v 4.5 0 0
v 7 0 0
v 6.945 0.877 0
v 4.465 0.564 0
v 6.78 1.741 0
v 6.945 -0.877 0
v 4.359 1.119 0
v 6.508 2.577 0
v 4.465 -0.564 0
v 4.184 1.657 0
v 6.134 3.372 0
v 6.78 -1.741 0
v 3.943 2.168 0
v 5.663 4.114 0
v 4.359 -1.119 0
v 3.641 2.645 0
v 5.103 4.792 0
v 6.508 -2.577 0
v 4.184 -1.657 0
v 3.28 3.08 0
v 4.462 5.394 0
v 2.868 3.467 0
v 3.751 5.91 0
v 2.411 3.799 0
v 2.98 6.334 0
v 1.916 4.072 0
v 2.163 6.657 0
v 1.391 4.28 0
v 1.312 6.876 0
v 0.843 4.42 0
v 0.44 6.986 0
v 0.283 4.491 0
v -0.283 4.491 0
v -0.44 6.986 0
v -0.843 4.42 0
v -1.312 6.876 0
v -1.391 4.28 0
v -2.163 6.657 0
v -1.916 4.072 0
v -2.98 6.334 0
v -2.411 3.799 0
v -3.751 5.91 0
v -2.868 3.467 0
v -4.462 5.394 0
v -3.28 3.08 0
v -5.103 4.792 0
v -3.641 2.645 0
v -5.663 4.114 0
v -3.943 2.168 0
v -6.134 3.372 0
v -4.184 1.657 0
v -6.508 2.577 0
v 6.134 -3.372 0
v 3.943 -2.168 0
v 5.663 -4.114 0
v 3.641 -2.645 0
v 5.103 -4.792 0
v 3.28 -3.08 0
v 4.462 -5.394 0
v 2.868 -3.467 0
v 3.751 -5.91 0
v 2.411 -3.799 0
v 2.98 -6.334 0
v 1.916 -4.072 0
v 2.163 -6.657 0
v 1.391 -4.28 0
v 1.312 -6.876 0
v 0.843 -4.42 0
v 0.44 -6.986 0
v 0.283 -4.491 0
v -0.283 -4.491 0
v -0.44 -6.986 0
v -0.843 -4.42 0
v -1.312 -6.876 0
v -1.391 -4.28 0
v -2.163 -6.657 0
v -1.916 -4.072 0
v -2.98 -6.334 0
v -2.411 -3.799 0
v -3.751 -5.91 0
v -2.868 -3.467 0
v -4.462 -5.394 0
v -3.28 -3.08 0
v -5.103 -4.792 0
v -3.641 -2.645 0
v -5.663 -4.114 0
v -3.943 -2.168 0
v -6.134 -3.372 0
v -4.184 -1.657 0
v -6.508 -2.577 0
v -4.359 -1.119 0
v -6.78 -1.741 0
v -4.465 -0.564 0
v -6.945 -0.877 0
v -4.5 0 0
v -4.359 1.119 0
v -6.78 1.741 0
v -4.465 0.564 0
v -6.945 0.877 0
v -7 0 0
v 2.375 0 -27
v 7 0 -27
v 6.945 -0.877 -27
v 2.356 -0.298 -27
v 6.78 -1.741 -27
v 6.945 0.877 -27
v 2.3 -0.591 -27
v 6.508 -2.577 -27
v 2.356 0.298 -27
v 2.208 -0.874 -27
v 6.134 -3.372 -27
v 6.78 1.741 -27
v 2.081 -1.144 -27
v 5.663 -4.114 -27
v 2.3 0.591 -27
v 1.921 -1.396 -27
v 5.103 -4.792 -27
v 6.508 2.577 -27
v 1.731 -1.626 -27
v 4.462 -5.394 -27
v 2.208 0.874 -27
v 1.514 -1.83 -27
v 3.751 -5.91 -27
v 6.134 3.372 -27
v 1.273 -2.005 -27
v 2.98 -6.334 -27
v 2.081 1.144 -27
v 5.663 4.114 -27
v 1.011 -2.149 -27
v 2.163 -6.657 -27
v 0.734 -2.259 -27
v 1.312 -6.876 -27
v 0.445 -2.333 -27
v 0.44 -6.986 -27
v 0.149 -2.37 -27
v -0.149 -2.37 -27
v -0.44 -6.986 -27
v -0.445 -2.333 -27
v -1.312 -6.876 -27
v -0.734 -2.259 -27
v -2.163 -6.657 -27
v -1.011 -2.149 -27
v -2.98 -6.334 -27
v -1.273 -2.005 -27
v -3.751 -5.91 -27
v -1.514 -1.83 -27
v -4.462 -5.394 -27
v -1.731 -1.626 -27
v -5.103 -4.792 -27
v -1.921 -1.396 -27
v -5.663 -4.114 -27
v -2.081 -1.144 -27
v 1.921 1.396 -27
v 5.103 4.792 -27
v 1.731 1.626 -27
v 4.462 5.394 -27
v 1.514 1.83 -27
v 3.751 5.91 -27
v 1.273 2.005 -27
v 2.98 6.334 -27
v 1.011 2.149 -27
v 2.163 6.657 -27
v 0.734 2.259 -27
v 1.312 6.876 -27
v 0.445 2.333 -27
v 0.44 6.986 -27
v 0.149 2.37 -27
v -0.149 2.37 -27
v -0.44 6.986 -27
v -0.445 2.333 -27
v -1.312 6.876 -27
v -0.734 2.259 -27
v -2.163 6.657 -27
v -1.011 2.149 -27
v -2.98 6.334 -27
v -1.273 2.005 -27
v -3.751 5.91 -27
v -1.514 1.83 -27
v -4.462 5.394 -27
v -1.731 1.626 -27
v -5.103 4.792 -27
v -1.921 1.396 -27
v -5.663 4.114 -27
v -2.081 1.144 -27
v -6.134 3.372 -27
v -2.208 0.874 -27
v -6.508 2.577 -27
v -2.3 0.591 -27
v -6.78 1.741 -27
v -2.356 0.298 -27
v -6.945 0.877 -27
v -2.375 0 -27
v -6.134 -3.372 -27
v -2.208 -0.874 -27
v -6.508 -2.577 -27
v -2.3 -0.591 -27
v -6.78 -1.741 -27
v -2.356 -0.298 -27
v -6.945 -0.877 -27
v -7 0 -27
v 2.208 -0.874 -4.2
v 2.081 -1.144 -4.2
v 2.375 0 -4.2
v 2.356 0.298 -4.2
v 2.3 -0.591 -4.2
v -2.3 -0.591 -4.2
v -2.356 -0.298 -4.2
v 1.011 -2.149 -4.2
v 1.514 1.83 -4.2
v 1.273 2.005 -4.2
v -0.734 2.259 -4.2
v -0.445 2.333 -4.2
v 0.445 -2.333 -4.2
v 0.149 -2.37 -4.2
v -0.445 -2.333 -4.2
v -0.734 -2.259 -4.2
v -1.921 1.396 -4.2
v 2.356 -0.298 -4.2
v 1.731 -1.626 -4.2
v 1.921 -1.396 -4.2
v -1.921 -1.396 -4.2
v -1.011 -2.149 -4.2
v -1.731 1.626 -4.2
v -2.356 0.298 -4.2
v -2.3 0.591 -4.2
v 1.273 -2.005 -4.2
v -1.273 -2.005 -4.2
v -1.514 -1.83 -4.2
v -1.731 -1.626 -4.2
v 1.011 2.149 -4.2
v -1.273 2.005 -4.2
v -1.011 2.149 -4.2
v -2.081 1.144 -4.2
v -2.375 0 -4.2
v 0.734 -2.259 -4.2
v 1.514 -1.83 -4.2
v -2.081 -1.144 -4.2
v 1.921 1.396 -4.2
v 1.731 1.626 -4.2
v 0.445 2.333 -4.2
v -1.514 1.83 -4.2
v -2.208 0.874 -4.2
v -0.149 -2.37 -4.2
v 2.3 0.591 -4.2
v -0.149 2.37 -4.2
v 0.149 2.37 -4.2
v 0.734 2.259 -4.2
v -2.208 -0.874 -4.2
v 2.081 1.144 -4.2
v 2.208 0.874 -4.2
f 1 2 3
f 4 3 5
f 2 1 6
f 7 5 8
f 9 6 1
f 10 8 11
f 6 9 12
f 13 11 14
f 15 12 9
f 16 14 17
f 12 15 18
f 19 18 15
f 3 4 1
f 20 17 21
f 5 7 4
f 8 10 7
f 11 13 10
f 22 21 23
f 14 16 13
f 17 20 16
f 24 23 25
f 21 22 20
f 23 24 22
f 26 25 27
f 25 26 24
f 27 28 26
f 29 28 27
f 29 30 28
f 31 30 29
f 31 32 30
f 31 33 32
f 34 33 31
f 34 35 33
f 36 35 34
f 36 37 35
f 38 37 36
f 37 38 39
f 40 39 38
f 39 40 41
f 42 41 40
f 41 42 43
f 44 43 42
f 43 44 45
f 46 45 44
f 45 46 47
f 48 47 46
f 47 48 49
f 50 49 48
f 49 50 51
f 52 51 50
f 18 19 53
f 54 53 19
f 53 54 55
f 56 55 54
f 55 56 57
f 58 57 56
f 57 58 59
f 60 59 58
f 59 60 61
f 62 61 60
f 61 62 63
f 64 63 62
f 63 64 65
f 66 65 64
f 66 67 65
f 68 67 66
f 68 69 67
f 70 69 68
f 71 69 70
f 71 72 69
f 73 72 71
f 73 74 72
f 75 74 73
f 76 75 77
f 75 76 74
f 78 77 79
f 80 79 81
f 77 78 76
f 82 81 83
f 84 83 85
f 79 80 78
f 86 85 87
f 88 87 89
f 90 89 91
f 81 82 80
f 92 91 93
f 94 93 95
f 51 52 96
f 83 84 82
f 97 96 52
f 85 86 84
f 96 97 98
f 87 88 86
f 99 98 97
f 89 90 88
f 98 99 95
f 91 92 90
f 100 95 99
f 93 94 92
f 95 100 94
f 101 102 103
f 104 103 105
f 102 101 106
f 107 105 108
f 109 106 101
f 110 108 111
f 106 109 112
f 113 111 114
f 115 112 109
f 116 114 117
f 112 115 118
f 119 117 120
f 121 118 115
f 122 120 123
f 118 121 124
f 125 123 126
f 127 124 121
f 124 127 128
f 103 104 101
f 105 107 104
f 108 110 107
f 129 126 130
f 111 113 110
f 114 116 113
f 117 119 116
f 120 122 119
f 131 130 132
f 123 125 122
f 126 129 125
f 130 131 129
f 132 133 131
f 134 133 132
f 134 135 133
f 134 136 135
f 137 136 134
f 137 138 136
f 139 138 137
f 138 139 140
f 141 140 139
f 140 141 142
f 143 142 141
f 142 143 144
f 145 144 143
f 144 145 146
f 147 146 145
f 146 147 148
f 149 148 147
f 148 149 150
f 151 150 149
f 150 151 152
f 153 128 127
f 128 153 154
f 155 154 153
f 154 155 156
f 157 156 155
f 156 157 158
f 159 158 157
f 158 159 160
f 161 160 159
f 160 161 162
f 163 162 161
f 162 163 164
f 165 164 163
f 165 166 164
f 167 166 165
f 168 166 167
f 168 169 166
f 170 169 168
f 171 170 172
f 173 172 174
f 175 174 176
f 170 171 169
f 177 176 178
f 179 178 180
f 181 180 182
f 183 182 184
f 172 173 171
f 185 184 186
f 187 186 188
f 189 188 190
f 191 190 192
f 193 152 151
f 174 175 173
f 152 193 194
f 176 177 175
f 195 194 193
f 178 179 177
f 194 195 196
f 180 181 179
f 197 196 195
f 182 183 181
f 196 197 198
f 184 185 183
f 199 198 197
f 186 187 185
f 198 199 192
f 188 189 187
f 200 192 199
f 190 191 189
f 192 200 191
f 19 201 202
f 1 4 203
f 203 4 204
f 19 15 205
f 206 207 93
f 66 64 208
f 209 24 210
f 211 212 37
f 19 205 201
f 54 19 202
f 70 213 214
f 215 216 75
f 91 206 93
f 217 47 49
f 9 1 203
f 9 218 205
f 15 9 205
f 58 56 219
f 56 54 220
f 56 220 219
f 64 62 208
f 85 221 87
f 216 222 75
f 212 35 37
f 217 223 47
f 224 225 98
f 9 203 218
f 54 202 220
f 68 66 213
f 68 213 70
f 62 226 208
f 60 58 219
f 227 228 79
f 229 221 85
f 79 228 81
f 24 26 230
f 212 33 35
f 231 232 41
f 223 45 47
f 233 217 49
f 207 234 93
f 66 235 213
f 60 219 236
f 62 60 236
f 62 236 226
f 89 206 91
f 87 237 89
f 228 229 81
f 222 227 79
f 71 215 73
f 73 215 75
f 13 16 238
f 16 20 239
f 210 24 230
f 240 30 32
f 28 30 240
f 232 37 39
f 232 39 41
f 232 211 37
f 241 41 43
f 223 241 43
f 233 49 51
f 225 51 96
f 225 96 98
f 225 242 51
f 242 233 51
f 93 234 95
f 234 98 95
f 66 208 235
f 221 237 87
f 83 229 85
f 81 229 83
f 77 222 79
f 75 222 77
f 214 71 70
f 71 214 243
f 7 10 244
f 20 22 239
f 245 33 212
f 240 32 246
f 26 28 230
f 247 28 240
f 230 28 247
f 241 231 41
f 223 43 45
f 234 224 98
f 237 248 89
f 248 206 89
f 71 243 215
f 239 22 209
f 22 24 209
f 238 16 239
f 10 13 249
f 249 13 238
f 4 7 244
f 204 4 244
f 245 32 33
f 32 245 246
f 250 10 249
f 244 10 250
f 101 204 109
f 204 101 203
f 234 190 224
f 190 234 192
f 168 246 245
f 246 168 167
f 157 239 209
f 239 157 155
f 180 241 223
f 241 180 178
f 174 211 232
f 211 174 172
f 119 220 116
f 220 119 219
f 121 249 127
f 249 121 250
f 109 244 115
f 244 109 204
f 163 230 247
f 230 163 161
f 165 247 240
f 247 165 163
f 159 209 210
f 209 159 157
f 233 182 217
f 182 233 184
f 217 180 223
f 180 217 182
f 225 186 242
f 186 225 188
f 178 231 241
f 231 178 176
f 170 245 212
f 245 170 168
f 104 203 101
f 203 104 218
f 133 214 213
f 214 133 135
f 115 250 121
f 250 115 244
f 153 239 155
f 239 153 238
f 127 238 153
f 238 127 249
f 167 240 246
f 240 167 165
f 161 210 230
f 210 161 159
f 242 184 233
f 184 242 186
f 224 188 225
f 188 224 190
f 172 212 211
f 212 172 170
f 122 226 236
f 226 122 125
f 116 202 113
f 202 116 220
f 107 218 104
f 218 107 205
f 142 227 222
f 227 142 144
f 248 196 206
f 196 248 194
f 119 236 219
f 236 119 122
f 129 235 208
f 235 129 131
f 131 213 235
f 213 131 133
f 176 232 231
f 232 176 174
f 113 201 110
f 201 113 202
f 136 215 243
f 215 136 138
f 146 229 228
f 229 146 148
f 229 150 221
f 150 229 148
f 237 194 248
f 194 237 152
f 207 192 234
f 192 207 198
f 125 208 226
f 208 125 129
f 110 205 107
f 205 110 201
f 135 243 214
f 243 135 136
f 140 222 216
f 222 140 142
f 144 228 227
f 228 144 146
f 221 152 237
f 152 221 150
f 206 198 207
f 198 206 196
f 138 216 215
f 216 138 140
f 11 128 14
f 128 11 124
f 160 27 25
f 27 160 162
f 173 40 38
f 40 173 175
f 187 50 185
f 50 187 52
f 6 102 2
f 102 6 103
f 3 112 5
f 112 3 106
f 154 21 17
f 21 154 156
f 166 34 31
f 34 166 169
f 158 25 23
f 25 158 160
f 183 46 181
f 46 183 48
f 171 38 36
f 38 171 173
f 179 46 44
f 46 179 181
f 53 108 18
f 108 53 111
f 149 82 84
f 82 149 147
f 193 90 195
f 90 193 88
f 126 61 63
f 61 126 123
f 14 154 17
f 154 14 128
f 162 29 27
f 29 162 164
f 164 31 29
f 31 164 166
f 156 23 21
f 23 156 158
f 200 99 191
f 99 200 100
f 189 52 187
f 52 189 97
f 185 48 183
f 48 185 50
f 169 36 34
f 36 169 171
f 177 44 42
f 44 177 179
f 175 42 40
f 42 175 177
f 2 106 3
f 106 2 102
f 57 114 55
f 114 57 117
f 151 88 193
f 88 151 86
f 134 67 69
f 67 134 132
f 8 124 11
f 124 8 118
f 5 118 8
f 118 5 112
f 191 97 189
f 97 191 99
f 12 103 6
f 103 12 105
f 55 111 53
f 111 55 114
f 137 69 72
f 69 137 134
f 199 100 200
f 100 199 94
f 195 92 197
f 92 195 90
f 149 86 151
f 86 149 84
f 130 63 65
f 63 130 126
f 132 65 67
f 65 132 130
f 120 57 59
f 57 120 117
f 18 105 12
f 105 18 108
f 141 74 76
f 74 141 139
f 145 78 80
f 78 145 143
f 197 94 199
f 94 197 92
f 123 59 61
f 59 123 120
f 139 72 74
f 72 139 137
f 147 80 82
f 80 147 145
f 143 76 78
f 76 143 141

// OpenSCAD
$fn = 50;


difference() {
	union() {
		translate(v = [0, 0, -27.0000000000]) {
			cylinder(h = 27, r = 7.0000000000);
		}
		cylinder(h = 0, r = 10.0000000000);
	}
	union() {
		translate(v = [0, 0, 0]) {
			rotate(a = [0, 0, 0]) {
				difference() {
					union() {
						#translate(v = [0, 0, -27.0000000000]) {
							cylinder(h = 27, r = 2.2500000000);
						}
						#translate(v = [0, 0, -4.2000000000]) {
							cylinder(h = 4.2000000000, r = 7.0000000000, r1 = 2.3750000000, r2 = 4.5000000000);
						}
						#translate(v = [0, 0, -27.0000000000]) {
							cylinder(h = 27, r = 2.3750000000);
						}
						#translate(v = [0, 0, -27.0000000000]) {
							cylinder(h = 27, r = 2.2500000000);
						}
					}
					union();
				}
			}
		}
	}
}
